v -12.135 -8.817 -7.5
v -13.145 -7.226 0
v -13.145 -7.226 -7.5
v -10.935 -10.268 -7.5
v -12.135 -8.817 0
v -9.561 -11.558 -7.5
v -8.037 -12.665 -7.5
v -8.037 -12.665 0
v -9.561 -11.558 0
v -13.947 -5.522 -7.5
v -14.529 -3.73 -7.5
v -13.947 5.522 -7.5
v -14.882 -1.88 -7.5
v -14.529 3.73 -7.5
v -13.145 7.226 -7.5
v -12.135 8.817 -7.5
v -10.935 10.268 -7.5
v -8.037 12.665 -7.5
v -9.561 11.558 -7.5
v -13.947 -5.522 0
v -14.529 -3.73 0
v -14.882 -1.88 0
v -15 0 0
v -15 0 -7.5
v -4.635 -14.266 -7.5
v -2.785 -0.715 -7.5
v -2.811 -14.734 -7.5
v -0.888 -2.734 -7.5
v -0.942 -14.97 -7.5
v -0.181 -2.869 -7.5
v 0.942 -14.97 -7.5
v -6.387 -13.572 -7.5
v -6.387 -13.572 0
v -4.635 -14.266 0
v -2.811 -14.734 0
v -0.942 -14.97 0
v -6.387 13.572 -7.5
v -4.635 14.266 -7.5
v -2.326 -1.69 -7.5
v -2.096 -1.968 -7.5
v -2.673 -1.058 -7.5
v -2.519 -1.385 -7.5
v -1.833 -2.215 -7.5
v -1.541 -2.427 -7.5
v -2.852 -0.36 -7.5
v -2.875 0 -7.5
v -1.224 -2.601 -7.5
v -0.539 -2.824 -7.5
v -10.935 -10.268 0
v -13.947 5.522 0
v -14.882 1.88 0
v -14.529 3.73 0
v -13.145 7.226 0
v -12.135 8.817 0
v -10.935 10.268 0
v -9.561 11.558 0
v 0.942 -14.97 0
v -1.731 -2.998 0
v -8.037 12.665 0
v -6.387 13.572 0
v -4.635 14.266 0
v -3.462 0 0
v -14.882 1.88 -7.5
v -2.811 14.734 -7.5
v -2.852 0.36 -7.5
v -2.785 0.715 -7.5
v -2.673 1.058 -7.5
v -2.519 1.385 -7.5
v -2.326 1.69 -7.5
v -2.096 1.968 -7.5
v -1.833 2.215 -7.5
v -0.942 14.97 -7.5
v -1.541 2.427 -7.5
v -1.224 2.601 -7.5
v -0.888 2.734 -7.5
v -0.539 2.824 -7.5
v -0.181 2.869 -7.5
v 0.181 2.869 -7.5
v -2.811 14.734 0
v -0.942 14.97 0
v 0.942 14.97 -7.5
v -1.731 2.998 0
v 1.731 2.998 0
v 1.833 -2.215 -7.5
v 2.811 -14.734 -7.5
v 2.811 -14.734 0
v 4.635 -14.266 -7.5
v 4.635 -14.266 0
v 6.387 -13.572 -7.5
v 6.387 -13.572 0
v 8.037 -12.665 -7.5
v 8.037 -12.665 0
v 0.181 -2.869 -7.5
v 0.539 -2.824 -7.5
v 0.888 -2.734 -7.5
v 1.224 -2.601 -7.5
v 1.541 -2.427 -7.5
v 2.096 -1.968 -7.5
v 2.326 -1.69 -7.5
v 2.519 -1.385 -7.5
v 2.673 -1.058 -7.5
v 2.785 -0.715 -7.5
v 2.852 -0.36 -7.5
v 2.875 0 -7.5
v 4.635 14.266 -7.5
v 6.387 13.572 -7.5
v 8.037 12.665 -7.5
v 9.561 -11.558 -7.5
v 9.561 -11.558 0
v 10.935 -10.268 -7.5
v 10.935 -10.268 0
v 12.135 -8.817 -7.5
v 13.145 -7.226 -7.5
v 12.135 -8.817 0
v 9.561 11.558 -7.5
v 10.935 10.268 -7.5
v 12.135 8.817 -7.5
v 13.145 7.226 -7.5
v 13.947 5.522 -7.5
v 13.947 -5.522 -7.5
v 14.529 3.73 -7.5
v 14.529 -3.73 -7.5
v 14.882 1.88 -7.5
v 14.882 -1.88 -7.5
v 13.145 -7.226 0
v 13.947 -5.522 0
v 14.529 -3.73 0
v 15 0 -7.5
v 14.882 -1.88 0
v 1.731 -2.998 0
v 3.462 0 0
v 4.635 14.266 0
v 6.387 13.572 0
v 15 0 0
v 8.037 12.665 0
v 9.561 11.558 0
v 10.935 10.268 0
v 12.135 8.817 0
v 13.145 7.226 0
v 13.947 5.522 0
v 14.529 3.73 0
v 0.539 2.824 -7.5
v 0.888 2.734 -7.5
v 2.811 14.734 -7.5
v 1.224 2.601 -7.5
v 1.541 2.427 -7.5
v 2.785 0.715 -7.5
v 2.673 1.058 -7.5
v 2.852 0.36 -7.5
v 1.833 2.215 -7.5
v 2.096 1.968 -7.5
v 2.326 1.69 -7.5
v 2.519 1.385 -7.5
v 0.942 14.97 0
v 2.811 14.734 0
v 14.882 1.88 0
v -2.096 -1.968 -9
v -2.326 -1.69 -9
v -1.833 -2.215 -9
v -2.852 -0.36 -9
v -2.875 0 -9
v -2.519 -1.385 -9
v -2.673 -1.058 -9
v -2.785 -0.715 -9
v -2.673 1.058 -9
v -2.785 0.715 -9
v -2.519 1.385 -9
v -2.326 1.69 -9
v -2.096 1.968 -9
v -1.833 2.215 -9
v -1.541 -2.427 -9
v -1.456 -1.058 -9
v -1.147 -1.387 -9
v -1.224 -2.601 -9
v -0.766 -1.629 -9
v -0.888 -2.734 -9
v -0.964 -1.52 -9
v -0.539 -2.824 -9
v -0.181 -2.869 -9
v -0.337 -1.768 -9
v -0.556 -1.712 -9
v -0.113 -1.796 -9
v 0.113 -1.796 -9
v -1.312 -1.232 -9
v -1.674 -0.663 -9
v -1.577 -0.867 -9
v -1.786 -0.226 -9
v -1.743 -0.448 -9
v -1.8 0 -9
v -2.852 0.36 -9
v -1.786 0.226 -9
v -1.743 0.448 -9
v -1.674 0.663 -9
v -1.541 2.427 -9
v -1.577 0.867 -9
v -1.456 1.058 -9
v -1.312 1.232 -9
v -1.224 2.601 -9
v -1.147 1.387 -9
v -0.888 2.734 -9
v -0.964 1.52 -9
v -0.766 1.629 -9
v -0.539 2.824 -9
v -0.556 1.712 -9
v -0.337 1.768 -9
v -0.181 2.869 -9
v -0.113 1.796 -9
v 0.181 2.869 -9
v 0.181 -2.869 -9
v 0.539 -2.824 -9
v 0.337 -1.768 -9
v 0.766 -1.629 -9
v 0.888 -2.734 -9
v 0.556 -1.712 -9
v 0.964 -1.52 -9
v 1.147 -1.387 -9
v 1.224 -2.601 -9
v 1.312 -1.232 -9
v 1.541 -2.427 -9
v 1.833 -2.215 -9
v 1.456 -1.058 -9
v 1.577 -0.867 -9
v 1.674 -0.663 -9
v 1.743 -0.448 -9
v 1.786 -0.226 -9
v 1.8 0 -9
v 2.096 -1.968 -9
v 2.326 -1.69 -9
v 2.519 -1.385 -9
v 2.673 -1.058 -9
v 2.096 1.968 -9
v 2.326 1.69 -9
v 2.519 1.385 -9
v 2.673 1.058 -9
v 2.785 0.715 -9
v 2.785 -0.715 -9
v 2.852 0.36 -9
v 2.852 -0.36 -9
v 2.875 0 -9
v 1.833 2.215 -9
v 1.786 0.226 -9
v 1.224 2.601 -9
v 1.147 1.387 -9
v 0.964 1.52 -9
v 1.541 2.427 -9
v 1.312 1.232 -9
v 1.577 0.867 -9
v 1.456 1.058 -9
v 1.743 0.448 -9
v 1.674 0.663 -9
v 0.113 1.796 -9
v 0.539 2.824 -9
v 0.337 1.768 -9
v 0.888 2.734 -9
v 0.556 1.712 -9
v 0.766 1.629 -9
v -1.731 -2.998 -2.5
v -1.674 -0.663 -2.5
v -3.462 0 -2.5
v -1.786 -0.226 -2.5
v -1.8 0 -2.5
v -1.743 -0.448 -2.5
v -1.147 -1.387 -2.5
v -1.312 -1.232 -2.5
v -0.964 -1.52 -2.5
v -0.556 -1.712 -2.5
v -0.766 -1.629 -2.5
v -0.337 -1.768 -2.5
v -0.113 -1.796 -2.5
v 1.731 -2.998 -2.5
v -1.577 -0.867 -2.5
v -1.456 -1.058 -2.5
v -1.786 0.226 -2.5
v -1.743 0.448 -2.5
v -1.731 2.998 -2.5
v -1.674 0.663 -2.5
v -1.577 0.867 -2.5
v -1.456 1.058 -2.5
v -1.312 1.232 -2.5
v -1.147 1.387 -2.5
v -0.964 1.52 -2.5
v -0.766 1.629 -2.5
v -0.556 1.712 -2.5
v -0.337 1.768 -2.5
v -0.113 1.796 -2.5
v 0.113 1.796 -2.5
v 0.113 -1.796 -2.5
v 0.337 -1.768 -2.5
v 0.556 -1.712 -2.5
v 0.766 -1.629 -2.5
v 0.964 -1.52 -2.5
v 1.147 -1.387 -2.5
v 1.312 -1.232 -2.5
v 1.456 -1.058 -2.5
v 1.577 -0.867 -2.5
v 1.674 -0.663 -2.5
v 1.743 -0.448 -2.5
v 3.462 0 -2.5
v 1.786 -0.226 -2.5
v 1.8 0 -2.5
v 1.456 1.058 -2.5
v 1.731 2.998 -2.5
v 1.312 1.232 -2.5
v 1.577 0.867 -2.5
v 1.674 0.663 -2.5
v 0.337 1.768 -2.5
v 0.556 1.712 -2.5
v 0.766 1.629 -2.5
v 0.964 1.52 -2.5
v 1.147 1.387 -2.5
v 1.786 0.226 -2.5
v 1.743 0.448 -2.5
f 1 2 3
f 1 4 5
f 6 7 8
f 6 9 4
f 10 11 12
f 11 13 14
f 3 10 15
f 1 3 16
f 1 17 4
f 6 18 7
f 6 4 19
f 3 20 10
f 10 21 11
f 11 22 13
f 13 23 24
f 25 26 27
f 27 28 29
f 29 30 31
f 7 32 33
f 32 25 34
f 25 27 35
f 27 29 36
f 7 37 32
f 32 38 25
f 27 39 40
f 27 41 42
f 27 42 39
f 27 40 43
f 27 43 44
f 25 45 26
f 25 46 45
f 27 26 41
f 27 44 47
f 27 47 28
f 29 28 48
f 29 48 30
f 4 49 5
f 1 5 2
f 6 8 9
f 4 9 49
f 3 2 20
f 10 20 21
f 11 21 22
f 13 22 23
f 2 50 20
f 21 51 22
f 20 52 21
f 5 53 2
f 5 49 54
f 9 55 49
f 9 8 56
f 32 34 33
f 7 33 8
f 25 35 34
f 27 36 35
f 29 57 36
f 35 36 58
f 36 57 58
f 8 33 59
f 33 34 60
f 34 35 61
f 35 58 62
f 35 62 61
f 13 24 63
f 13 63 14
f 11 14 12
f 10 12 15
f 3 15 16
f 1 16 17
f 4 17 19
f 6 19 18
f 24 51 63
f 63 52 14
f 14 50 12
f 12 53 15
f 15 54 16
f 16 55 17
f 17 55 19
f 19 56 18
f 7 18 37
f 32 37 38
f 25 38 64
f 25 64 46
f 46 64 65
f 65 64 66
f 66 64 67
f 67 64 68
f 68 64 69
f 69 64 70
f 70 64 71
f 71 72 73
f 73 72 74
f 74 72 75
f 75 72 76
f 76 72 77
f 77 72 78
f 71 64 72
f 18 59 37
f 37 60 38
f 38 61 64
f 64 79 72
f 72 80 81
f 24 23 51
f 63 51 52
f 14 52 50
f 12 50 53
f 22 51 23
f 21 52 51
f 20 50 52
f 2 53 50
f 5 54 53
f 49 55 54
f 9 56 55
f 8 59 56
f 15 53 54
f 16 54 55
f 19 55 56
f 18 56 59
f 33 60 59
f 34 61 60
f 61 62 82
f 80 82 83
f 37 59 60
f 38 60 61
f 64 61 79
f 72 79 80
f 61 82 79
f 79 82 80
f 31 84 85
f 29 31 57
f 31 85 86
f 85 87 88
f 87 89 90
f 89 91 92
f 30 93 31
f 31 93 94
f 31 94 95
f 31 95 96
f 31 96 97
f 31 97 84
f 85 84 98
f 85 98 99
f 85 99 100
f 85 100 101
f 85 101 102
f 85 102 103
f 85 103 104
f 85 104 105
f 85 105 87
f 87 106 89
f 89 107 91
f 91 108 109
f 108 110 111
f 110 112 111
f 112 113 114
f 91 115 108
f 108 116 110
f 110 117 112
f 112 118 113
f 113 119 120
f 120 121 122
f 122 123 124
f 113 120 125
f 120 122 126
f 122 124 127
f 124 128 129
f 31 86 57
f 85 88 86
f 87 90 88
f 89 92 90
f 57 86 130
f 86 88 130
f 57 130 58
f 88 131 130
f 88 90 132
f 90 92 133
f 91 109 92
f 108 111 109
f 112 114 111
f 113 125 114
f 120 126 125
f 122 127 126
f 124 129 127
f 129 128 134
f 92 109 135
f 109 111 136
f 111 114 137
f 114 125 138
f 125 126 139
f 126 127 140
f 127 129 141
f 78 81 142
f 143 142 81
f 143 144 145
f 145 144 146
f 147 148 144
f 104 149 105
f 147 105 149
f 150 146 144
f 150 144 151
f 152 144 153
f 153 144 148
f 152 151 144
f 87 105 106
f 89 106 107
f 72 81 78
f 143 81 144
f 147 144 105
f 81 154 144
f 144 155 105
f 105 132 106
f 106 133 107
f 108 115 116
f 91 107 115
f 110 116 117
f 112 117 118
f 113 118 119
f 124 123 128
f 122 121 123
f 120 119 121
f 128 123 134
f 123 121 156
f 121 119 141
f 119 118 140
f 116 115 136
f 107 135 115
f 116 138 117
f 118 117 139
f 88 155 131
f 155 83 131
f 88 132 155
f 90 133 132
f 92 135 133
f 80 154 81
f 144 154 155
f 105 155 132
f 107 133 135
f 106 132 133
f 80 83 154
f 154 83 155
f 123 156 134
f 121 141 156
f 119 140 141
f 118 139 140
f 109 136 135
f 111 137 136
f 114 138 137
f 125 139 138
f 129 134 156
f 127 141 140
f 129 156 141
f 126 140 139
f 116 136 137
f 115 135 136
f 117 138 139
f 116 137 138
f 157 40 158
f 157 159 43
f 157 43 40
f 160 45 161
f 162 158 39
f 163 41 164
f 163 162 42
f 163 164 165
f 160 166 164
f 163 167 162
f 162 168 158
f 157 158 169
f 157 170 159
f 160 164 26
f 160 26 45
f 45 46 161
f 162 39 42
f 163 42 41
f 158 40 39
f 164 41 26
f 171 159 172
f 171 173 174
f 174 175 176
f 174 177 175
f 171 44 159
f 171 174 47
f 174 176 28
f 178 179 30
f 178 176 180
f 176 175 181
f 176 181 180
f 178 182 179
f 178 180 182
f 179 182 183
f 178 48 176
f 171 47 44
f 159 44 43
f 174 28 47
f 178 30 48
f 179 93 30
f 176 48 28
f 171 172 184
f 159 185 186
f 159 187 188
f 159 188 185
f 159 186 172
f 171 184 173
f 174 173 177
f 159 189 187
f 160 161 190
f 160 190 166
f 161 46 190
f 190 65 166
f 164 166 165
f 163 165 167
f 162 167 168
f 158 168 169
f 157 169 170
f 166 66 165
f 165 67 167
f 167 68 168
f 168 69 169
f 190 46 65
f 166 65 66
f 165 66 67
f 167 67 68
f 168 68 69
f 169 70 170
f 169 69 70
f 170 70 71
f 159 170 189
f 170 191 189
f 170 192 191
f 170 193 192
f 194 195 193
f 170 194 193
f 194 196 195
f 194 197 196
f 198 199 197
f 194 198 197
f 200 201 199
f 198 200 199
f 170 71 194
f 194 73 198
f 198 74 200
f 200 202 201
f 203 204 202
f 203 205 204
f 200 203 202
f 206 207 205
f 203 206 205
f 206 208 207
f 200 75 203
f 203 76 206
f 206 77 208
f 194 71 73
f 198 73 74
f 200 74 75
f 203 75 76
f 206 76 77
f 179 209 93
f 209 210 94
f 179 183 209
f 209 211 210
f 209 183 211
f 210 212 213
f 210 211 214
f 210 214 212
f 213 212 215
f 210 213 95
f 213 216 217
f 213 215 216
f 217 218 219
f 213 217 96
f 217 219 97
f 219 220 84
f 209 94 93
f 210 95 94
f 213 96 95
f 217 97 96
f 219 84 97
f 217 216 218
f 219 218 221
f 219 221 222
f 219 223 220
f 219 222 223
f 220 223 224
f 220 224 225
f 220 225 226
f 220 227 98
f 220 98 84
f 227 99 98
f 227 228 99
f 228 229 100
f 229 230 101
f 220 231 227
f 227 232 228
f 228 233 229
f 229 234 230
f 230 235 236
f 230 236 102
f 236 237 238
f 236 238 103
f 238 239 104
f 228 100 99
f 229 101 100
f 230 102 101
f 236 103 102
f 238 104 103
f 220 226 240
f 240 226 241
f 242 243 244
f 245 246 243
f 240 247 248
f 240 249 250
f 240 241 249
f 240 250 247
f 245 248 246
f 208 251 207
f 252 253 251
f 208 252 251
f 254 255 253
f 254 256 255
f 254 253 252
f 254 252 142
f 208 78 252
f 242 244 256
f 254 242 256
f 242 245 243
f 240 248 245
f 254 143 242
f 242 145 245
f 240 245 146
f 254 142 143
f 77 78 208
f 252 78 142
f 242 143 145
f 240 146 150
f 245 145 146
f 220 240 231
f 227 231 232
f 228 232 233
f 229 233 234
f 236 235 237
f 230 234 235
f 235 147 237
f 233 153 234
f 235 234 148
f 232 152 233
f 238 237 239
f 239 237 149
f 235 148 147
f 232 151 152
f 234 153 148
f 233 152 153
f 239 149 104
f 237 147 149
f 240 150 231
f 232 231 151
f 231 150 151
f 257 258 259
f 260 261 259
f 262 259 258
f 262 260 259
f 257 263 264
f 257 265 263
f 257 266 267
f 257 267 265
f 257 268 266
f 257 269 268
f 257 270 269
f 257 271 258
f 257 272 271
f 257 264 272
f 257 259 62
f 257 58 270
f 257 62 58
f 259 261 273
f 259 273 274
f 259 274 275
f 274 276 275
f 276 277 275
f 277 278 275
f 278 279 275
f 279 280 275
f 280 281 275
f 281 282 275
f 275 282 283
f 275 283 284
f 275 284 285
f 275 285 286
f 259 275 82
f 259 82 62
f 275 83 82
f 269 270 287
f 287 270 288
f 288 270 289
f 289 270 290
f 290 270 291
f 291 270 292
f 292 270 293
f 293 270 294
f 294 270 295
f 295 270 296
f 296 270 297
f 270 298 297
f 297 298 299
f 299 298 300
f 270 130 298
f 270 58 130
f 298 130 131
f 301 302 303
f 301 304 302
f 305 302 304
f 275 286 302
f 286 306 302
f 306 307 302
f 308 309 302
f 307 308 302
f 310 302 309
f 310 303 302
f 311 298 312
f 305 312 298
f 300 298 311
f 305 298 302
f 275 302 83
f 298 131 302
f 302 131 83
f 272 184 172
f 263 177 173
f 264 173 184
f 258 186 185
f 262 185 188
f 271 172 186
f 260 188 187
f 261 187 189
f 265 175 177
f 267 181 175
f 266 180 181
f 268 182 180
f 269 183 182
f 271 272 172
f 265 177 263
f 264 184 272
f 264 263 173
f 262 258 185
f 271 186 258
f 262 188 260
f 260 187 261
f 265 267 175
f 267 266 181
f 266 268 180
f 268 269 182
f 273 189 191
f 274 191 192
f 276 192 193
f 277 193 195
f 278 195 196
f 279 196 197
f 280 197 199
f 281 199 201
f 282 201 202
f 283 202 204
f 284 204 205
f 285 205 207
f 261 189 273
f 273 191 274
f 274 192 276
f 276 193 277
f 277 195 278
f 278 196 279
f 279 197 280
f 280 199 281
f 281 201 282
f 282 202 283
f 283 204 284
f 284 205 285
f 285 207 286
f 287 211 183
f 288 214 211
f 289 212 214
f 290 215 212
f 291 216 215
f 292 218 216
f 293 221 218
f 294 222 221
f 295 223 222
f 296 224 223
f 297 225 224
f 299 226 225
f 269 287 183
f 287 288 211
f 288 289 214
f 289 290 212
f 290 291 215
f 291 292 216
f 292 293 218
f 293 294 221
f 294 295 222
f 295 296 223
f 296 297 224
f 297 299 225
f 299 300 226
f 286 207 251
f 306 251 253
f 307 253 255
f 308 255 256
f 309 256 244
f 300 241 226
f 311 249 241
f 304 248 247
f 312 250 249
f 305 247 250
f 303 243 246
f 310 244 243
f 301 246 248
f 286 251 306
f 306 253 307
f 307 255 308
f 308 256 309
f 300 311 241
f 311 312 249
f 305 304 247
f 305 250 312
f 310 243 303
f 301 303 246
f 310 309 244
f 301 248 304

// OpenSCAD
$fn = 50;

difference() {
	union() {
		translate(v = [0, 0, -7.5]) {
			cylinder(h = 7.5, r = 15.0);
		}
		#translate(v = [0, 0, -9.0]) {
			cylinder(h = 9, r = 2.875);
		}
	}
	union() {
		translate(v = [0, 0, 0]) {
			rotate(a = [0, 0, 0]) {
				difference() {
					union() {
						translate(v = [0, 0, -2.5]) {
							linear_extrude(height = 2.5) {
								polygon(points = [[3.4619999999999997, 0.0], [1.7310000000000003, 2.9981799479017264], [-1.7309999999999992, 2.9981799479017264], [-3.4619999999999997, 4.2397272186481365e-16], [-1.7310000000000014, -2.998179947901726], [1.7309999999999977, -2.9981799479017277]]);
							}
						}
					}
					union();
				}
			}
		}
		#translate(v = [0, 0, -100.0]) {
			cylinder(h = 200, r = 1.8);
		}
	}
}
